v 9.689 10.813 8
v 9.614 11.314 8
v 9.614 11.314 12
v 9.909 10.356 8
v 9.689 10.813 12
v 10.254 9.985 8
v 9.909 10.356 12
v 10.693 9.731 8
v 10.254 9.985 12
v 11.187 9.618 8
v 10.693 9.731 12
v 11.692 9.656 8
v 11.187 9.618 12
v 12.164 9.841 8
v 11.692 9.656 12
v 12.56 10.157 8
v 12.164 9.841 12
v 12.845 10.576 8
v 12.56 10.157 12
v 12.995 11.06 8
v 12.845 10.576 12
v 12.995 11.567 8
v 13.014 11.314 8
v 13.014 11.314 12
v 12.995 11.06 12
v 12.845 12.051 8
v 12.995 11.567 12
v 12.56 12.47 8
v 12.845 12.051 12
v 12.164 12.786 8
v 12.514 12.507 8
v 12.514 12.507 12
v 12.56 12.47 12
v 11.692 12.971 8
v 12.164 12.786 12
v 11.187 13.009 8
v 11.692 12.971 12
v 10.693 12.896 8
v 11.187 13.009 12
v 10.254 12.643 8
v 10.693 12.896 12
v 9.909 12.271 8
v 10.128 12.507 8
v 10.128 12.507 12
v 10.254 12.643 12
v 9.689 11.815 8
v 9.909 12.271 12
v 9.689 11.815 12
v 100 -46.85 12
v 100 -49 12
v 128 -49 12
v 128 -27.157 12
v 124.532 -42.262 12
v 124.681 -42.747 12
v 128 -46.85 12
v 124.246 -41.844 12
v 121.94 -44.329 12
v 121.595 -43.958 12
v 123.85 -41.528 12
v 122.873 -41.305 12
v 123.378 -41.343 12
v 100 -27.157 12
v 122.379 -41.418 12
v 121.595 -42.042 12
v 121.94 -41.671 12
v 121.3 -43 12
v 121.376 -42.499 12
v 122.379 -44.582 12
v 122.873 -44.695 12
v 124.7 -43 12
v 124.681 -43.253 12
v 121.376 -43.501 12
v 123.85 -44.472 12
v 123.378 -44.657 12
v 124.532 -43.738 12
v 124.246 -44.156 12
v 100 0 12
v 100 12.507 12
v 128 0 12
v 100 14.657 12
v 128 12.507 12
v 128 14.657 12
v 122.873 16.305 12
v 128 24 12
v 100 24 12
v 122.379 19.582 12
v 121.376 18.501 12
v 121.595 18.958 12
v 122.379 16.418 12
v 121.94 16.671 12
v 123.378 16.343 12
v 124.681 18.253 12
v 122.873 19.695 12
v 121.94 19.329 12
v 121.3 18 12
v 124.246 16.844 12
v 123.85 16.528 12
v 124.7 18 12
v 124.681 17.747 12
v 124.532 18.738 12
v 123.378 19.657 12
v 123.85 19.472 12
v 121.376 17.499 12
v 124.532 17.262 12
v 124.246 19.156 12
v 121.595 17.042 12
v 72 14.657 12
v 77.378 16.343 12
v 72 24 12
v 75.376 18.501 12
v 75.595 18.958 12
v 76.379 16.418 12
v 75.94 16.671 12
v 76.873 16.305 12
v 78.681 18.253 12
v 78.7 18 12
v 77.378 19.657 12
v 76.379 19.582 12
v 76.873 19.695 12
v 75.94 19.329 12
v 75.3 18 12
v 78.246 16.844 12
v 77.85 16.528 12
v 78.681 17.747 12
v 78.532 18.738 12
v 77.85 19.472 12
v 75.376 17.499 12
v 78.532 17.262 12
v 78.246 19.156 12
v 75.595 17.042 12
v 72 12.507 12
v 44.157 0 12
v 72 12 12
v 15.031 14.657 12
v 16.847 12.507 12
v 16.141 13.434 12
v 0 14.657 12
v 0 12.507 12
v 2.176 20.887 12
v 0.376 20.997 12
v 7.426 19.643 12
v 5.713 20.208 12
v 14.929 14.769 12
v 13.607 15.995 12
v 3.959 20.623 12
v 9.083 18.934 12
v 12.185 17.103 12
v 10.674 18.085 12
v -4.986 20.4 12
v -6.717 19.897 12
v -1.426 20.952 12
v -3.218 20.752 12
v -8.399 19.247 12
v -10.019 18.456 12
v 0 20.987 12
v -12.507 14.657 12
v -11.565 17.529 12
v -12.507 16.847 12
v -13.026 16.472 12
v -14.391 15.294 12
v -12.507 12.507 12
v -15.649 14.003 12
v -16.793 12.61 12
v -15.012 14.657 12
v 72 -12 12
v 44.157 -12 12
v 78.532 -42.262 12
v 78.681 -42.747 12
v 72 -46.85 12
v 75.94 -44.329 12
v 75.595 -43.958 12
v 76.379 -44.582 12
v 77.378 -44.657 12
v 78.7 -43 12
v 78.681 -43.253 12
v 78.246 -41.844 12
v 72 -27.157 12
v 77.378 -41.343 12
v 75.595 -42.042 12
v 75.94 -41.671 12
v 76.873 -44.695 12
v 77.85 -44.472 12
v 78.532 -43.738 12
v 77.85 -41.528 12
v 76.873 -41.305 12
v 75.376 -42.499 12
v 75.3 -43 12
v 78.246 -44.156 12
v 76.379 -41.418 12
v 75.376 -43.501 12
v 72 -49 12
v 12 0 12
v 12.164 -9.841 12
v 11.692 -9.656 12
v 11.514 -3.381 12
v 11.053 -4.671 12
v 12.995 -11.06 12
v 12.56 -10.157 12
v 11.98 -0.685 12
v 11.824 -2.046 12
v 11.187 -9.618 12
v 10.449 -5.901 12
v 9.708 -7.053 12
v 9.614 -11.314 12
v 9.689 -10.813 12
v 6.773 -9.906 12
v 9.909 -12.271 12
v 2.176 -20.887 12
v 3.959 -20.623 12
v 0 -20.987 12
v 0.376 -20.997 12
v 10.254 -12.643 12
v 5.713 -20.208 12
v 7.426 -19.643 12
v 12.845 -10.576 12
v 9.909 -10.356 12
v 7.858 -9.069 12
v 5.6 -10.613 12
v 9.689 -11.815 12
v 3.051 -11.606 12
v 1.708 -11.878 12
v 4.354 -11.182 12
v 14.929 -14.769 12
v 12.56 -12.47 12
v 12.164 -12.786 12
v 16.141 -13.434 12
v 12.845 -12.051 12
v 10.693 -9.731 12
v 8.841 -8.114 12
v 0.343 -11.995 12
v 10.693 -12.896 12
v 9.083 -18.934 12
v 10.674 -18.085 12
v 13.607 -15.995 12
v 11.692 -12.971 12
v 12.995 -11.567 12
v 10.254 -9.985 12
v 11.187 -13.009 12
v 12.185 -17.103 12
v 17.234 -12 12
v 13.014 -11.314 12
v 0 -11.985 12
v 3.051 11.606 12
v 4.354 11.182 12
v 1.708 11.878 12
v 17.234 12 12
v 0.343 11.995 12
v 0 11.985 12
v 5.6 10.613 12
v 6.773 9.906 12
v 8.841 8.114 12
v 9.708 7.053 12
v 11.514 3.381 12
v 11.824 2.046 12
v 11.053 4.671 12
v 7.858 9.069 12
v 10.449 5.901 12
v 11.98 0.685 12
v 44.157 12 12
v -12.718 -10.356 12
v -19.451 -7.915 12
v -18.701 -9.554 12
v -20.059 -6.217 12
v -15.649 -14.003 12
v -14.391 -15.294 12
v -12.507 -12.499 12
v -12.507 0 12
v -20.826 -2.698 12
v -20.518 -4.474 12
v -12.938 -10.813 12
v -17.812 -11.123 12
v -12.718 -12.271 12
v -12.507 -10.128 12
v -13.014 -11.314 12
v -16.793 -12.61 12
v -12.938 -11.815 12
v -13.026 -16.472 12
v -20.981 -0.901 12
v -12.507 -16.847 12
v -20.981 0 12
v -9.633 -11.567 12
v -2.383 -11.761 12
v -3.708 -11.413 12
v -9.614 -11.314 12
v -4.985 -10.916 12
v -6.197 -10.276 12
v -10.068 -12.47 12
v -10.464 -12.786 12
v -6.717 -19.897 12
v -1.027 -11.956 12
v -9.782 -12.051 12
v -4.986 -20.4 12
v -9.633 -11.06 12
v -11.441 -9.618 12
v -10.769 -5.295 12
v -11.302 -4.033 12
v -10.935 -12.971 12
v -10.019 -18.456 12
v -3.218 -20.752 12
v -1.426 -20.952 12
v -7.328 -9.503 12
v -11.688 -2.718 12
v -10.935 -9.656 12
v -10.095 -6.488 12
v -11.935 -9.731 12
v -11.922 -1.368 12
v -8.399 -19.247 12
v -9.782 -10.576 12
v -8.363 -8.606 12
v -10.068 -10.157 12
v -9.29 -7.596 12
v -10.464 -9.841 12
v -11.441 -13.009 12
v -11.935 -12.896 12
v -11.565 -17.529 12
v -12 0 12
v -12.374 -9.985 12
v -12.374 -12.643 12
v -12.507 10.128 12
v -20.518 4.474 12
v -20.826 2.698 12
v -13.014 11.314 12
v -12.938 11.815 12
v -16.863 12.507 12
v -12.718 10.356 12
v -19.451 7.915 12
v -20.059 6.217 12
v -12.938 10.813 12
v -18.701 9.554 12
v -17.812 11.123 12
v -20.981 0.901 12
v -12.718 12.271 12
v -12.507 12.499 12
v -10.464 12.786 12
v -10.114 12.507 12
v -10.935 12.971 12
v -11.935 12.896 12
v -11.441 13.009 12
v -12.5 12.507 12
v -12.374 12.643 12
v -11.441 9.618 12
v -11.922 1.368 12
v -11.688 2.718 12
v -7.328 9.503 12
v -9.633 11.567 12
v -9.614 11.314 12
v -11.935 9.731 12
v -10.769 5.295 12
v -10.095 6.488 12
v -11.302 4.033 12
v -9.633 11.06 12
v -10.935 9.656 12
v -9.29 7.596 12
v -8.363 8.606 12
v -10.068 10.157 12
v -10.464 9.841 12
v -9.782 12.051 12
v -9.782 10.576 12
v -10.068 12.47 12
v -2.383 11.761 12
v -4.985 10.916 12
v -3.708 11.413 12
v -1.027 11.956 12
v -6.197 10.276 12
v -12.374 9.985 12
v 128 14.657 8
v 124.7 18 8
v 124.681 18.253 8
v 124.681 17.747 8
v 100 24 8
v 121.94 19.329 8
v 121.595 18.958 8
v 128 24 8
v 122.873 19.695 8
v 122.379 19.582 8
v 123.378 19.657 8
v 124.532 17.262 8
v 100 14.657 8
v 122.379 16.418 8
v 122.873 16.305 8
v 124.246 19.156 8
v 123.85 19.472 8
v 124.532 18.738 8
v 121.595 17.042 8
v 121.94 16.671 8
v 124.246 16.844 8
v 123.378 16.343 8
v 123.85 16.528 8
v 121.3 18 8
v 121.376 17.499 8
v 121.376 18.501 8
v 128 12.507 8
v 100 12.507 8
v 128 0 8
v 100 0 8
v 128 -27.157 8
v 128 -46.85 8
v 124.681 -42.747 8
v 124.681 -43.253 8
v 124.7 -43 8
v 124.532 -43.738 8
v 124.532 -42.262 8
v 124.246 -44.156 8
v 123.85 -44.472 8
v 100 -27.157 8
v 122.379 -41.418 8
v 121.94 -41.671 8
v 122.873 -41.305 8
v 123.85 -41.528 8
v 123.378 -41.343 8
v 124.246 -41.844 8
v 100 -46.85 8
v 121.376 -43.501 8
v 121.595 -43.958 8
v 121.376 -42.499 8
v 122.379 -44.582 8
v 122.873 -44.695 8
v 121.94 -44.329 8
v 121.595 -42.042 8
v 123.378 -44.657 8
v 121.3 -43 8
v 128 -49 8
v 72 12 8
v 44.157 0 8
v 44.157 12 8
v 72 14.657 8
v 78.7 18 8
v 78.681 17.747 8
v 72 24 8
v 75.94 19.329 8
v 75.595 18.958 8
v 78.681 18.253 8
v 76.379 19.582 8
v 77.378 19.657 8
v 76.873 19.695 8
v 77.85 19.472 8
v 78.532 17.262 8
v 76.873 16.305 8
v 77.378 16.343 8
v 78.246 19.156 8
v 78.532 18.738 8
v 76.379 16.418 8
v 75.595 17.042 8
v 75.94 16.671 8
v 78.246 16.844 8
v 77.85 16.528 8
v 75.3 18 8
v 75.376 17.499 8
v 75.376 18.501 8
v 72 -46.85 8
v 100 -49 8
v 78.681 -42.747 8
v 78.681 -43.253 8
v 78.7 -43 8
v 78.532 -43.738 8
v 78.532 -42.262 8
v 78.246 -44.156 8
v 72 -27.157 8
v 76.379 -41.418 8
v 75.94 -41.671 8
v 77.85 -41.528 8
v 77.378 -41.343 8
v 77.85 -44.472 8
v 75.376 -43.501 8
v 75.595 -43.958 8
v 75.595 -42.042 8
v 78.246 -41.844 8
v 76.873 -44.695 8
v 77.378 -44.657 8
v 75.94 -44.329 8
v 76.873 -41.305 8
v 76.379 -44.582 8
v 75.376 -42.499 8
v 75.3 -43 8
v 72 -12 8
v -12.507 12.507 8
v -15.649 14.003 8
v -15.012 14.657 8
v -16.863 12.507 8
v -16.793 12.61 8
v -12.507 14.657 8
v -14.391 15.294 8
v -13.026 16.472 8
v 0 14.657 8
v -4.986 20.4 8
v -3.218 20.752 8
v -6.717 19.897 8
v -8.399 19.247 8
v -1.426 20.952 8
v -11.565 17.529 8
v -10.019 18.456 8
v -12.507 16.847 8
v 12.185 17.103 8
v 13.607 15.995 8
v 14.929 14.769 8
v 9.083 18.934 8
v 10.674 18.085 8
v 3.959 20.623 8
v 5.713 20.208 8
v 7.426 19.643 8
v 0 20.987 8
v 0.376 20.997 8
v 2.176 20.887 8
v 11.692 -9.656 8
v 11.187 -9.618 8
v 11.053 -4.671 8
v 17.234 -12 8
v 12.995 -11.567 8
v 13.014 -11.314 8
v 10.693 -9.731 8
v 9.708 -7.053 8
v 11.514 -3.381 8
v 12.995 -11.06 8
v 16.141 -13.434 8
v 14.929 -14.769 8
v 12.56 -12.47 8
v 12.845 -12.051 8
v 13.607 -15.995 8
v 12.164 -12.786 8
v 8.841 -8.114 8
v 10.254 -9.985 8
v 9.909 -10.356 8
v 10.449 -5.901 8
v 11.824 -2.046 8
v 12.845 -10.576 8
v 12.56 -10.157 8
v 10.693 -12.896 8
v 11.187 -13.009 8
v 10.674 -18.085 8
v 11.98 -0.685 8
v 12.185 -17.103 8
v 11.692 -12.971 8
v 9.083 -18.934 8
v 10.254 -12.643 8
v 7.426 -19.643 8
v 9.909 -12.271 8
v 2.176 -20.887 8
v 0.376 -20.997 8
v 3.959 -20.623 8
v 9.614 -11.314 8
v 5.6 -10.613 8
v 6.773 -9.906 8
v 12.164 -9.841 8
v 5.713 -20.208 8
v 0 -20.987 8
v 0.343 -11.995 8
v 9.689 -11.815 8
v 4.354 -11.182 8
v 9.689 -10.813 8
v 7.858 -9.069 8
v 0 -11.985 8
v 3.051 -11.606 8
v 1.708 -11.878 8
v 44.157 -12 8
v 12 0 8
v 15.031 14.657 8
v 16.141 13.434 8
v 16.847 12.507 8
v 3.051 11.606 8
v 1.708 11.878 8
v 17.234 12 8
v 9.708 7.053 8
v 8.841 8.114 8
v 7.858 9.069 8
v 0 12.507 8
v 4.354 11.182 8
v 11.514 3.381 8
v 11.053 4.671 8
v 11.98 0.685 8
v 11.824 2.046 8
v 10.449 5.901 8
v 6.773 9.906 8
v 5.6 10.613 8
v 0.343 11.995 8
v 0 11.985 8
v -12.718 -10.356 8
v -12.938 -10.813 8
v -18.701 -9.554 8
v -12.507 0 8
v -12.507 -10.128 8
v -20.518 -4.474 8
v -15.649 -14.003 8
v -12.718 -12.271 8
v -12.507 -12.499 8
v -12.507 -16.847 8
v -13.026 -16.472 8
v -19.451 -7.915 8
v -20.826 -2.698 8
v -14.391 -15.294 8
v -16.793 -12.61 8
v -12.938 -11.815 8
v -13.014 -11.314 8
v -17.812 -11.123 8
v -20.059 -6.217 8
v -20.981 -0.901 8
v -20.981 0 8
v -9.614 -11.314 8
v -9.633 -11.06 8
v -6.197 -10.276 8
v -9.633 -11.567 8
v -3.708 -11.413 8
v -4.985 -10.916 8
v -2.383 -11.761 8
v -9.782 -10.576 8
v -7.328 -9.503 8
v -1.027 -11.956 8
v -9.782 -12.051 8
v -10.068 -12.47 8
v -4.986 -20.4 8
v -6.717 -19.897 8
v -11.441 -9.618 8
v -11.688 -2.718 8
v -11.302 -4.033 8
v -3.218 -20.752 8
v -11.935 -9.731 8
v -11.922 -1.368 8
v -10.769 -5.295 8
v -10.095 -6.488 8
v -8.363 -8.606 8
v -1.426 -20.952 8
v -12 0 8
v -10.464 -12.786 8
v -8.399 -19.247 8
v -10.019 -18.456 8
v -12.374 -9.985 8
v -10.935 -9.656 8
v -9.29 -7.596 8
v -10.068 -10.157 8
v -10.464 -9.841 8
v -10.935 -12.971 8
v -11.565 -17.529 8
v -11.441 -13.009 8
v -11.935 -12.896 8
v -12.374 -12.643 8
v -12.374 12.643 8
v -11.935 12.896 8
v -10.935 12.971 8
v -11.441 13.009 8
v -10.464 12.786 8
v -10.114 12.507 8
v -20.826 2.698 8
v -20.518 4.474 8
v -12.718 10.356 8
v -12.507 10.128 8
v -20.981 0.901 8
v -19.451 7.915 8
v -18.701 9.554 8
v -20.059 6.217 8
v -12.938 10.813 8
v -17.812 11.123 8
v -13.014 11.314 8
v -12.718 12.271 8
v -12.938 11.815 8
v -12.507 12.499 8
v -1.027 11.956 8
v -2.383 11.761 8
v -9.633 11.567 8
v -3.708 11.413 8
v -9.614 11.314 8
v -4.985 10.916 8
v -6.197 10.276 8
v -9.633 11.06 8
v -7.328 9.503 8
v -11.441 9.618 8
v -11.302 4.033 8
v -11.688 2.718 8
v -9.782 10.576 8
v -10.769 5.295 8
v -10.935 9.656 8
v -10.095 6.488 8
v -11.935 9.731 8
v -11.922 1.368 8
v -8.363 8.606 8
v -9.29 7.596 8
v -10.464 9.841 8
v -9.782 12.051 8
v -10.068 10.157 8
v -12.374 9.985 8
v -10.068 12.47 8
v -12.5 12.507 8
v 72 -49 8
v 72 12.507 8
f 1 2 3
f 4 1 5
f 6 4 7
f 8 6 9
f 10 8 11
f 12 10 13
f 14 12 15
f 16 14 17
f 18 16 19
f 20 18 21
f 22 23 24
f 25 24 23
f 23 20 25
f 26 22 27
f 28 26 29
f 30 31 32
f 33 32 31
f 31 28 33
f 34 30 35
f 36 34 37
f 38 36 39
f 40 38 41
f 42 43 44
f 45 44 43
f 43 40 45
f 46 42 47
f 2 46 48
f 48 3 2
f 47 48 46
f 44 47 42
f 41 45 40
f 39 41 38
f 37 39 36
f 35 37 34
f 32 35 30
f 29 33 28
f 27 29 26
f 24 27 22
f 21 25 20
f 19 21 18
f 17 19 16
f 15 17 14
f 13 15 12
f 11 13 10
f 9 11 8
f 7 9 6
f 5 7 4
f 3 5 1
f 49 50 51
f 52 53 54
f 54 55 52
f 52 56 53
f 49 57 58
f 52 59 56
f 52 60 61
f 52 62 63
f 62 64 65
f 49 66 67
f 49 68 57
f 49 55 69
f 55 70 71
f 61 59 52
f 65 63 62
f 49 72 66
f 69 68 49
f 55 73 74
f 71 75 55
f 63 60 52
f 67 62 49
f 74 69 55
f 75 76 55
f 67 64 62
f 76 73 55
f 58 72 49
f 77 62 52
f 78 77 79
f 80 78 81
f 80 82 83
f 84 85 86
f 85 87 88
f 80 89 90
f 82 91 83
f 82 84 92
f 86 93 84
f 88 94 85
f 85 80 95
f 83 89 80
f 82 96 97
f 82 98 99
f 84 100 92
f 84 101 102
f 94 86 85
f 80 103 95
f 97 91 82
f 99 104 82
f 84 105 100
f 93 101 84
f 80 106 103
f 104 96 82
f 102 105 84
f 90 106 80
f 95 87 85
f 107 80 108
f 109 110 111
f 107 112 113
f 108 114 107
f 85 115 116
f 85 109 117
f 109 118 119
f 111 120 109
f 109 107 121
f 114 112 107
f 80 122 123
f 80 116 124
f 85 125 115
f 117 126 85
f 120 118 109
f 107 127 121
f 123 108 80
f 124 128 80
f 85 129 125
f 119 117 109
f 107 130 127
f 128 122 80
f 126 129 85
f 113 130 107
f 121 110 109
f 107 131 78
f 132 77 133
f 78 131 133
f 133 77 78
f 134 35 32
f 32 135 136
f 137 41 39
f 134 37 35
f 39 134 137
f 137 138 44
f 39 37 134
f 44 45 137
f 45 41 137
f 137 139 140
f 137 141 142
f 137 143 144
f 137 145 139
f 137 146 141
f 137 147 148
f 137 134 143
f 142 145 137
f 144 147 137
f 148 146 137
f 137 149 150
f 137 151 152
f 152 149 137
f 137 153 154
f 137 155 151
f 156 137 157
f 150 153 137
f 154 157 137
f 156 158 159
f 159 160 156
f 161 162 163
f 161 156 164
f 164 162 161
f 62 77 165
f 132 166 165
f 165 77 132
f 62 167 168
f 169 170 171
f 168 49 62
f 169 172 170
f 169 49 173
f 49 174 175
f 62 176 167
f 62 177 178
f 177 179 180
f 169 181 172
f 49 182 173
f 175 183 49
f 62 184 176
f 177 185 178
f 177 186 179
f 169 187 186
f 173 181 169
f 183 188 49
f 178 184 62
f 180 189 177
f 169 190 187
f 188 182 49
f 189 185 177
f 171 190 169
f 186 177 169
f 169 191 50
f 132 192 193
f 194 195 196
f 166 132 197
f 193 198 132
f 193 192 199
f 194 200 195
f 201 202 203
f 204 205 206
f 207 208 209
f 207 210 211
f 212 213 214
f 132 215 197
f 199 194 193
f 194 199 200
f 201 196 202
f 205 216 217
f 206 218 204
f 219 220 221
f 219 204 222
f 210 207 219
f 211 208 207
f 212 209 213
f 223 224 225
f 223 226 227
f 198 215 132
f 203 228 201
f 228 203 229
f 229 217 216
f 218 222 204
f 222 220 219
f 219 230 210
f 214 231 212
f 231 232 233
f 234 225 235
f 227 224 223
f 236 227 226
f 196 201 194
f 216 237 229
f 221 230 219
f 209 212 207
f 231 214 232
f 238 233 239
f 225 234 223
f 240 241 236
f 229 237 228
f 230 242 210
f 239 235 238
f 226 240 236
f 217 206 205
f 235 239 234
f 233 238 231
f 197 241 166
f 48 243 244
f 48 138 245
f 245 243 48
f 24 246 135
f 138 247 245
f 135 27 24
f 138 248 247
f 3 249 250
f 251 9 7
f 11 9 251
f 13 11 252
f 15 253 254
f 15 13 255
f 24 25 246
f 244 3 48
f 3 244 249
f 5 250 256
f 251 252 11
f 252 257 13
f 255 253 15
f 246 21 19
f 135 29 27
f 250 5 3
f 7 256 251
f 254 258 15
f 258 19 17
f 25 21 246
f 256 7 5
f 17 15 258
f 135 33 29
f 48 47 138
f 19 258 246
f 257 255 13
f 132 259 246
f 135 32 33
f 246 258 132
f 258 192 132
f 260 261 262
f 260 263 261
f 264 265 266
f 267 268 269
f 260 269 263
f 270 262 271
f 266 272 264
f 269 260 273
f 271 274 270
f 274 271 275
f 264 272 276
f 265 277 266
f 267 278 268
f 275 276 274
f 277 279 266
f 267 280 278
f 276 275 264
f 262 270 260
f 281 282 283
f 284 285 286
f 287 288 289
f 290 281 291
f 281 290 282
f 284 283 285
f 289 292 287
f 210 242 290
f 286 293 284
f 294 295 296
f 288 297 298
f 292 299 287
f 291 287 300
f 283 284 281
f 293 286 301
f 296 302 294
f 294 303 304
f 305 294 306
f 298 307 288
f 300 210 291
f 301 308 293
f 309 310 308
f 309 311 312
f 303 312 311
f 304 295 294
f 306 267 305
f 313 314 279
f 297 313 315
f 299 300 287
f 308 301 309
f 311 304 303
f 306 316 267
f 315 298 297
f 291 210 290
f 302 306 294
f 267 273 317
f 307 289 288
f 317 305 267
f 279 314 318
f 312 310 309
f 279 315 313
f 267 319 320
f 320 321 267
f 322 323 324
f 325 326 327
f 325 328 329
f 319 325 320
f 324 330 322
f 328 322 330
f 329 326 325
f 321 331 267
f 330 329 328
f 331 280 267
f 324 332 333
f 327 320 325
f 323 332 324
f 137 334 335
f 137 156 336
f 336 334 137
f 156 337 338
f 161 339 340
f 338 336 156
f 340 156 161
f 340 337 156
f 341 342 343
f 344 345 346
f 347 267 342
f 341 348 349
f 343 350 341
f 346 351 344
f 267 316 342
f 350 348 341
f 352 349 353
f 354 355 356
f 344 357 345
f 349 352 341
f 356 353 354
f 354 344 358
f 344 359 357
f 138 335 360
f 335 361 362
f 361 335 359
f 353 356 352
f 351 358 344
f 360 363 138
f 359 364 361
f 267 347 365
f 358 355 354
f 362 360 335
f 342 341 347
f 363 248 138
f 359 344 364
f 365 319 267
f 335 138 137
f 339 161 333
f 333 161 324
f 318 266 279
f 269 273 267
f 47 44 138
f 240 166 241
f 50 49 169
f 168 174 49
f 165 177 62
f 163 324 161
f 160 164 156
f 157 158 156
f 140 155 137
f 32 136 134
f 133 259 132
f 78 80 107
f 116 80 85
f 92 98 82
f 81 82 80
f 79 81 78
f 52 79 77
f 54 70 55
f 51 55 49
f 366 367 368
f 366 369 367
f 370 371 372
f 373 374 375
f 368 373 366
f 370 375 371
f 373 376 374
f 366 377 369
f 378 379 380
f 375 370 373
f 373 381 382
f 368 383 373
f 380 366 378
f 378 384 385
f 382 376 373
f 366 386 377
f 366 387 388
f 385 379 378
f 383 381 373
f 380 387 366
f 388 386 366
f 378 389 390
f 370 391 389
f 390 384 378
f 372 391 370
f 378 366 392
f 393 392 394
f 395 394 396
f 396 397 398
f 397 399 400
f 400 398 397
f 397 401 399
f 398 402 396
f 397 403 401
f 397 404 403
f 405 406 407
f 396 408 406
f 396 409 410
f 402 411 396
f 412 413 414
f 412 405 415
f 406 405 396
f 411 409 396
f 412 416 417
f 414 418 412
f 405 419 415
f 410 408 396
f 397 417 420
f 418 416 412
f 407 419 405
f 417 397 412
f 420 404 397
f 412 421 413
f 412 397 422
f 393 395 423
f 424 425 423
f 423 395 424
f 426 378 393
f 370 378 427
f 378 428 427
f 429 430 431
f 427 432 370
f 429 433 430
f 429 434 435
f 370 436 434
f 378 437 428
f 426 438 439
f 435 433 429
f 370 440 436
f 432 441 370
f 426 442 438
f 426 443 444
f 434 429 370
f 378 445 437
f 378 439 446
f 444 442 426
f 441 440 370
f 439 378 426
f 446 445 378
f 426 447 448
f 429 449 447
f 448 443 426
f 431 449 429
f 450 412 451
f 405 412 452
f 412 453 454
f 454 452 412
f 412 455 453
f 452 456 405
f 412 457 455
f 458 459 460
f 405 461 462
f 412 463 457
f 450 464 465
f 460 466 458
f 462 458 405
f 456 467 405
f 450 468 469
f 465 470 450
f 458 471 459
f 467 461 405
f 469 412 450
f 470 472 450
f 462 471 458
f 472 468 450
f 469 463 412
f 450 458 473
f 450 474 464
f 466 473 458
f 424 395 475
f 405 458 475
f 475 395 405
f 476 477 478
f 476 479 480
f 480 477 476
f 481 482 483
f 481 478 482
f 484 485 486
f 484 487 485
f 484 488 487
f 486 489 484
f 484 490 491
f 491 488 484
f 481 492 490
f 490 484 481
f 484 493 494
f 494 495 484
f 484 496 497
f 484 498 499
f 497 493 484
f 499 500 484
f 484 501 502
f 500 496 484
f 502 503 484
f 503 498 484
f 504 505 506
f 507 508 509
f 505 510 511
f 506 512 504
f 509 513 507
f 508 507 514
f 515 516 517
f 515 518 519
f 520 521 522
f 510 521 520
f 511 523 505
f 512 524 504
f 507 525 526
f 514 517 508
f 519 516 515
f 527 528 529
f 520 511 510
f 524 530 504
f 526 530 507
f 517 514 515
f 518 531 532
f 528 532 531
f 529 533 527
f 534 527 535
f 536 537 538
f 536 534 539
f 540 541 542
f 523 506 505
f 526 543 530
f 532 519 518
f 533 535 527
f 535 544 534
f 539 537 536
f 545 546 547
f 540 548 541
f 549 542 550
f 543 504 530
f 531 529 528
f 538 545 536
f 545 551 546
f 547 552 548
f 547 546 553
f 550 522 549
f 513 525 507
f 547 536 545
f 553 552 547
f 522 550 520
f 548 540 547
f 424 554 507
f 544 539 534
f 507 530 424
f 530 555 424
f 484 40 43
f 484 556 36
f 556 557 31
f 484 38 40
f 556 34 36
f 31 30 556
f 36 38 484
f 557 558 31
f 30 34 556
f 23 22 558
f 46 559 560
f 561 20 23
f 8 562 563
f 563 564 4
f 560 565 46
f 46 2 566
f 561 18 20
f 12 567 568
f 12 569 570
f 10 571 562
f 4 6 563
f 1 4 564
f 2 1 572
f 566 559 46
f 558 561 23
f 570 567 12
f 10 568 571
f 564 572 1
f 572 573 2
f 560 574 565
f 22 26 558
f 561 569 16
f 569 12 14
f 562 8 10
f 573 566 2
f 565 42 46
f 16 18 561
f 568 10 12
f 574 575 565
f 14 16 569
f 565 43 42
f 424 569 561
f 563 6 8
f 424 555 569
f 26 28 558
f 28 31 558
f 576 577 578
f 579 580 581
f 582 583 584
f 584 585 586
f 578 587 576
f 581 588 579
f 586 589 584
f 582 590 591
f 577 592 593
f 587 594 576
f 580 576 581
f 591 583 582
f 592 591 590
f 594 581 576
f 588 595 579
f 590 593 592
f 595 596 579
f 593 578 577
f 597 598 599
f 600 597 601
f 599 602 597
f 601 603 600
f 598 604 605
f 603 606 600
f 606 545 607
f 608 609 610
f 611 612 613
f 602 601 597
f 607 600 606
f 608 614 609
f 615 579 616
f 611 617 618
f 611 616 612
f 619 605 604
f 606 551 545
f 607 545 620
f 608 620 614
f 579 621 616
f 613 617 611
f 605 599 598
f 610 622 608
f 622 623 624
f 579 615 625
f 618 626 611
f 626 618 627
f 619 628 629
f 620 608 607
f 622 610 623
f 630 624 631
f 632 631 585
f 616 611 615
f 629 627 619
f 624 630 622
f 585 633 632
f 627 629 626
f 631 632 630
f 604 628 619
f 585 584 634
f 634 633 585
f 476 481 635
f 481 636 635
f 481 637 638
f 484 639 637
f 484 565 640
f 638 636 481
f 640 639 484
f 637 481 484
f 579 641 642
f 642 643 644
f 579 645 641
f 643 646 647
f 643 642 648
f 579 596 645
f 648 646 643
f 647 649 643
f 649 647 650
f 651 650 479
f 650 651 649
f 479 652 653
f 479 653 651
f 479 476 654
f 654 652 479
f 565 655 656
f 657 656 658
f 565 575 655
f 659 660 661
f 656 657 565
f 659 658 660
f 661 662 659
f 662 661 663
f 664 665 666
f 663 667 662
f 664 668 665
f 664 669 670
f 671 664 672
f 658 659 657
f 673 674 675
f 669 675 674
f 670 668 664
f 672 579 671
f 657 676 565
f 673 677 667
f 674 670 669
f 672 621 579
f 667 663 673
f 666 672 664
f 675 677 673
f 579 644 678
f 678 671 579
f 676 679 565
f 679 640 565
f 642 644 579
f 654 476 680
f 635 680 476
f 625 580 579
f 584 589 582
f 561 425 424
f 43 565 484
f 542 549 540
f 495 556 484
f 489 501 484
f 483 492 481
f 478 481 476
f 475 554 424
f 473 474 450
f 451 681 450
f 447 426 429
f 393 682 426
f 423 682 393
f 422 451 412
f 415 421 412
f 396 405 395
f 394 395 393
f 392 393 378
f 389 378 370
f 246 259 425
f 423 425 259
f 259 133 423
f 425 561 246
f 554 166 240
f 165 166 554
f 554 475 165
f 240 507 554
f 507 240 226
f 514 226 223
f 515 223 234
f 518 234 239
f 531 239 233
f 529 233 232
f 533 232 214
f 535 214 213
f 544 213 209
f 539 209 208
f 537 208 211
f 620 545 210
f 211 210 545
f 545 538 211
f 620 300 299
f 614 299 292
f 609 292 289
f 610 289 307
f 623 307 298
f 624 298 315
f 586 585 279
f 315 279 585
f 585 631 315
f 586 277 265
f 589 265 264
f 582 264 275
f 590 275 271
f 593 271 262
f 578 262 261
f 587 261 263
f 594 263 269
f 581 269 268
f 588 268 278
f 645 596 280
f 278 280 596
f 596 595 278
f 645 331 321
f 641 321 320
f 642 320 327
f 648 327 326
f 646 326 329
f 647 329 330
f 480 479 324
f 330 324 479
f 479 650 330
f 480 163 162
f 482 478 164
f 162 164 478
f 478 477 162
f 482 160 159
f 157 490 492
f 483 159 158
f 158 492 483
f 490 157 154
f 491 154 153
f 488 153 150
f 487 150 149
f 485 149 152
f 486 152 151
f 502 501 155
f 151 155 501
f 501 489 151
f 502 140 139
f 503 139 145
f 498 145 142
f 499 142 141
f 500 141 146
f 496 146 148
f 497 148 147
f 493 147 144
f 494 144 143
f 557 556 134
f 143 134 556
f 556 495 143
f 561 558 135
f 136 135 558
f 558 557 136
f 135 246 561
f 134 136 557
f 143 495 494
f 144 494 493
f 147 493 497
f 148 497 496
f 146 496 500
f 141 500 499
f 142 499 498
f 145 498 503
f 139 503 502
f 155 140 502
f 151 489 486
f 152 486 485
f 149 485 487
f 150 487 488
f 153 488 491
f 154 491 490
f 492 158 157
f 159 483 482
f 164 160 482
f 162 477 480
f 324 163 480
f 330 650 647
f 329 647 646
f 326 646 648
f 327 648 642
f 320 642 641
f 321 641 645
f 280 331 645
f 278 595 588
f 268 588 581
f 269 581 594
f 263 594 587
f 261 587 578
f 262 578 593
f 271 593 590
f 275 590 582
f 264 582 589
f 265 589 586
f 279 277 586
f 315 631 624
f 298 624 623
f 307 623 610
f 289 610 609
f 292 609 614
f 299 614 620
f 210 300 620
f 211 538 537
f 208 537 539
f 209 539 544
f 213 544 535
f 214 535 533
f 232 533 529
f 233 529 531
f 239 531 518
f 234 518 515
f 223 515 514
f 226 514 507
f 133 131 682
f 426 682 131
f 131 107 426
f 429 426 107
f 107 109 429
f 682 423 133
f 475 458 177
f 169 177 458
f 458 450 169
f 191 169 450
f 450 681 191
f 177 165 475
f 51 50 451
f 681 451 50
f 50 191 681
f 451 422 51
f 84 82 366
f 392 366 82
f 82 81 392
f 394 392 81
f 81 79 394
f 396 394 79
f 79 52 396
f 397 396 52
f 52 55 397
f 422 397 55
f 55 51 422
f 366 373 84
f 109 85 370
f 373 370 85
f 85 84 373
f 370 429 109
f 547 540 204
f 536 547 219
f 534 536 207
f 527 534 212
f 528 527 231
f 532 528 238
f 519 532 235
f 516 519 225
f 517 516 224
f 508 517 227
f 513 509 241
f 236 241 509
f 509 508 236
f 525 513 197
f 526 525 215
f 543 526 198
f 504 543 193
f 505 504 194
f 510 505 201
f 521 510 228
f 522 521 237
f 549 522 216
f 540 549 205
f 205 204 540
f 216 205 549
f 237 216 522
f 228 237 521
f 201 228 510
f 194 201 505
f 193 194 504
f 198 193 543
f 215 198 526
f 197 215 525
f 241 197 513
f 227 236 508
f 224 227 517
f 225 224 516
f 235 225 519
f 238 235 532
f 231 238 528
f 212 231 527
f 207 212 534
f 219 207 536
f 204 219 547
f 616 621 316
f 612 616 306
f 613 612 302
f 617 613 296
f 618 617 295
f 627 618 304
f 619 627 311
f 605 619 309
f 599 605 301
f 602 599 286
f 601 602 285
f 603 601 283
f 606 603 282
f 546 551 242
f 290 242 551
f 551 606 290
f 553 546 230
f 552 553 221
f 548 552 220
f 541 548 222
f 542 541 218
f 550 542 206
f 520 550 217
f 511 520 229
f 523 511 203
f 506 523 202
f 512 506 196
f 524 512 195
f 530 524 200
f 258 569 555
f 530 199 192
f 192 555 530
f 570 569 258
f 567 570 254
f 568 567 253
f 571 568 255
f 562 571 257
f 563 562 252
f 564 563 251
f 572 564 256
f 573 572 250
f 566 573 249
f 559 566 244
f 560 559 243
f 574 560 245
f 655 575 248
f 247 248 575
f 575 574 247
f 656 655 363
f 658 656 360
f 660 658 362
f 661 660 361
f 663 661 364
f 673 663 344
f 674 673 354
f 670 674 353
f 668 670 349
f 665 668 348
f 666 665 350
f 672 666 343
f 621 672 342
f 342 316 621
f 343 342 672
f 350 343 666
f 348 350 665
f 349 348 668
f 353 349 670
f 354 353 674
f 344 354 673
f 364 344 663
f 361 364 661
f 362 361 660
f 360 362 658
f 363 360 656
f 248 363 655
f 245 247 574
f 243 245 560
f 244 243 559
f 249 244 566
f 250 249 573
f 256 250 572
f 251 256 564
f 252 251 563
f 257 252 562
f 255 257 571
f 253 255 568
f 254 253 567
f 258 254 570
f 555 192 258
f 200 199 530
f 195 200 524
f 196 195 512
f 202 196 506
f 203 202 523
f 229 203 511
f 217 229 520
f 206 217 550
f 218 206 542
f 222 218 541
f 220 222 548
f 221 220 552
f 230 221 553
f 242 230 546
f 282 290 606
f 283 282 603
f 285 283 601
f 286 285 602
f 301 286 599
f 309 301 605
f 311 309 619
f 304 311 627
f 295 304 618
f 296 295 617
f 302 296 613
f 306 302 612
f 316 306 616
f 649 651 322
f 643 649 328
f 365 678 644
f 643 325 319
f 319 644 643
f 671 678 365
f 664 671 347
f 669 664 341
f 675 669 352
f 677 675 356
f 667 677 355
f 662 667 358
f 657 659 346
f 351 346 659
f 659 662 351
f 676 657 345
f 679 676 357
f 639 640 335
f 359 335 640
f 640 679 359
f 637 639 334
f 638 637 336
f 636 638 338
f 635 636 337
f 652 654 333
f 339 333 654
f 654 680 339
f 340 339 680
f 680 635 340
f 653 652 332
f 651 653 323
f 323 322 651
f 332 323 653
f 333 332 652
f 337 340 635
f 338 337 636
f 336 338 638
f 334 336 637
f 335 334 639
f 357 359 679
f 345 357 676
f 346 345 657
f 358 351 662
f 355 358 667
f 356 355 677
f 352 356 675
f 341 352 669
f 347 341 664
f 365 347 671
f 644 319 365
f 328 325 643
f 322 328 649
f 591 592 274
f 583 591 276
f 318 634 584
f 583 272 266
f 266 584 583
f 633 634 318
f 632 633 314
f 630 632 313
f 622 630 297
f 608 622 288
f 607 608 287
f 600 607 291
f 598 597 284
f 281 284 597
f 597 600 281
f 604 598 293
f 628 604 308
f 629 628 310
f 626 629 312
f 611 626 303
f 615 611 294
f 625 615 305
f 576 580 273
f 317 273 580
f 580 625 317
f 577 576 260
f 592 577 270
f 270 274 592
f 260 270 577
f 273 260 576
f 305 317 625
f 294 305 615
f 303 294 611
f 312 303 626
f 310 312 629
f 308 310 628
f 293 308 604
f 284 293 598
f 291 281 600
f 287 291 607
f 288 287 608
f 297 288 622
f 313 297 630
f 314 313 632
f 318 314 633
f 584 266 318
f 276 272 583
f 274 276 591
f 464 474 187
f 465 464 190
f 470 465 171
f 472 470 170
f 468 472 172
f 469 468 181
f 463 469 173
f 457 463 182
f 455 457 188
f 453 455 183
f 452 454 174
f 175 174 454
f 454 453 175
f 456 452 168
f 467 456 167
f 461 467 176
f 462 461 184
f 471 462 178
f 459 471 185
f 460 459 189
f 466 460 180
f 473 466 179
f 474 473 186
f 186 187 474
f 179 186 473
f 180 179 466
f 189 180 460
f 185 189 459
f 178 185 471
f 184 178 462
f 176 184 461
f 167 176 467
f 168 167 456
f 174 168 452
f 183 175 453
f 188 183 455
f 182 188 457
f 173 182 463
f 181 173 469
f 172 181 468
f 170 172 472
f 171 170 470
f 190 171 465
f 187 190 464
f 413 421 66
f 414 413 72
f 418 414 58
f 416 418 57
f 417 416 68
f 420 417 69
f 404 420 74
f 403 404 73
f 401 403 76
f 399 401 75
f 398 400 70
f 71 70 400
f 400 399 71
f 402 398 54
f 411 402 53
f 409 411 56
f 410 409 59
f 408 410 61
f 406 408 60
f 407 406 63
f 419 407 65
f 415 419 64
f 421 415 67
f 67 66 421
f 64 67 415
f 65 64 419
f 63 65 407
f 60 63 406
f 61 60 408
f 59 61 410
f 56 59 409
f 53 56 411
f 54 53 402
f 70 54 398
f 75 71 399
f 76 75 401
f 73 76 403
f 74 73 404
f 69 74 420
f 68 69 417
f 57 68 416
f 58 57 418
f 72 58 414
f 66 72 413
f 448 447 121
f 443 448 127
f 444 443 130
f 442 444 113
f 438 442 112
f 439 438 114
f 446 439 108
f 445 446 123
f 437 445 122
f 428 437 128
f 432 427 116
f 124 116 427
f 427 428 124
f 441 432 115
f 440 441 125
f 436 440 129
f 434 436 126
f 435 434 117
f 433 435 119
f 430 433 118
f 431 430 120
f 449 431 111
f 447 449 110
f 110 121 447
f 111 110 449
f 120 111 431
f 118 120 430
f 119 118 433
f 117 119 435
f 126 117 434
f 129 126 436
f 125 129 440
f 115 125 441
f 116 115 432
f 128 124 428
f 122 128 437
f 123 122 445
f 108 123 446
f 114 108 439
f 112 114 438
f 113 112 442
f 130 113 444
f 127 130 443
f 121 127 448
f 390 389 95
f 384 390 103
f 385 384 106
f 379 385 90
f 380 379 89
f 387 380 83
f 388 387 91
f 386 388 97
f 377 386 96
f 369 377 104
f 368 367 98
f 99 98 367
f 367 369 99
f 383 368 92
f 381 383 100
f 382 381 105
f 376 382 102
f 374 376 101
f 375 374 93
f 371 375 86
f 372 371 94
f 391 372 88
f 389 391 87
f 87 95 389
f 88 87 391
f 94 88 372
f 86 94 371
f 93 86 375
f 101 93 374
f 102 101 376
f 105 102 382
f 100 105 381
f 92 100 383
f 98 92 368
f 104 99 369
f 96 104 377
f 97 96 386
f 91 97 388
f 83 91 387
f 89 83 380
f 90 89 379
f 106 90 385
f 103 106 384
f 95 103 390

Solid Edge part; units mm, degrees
sketch "Sketch1" plane through (0, 0, 8) normal (0, 0, 1) x (1, 0, 0)
  circle A0 centre (0, 0) radius 21
  circle A1 centre (0, 0) radius 12
  circle A2 centre (11.3137, 11.3137) radius 1.7
  circle A3 centre (-11.3137, 11.3137) radius 1.7
  circle A4 centre (-11.3137, -11.3137) radius 1.7
  circle A5 centre (11.3137, -11.3137) radius 1.7
extrude "ExtrudedProtrusion_1" add sketch "Sketch1" along normal blind 4
sketch "Sketch2" plane through (0, 0, 8) normal (0, 0, 1) x (1, 0, 0)
  line L0 (12, -12) -> (88, -12)
  line L1 (88, -12) -> (88, 12)
  line L2 (88, 12) -> (12, 12)
  line L3 (12, 12) -> (12, -12)
extrude "ExtrudedProtrusion_2" add sketch "Sketch2" along normal blind 4
sketch "Sketch3" plane through (0, 0, 8) normal (0, 0, 1) x (1, 0, 0)
  line L0 (72, -49) -> (128, -49)
  line L1 (128, -49) -> (128, 24)
  line L2 (128, 24) -> (72, 24)
  line L3 (72, 24) -> (72, -49)
  circle A0 centre (77, -43) radius 1.7
  circle A1 centre (123, -43) radius 1.7
  circle A2 centre (77, 18) radius 1.7
  circle A3 centre (123, 18) radius 1.7
extrude "ExtrudedProtrusion_3" add sketch "Sketch3" along normal blind 4
sketch "Sketch4" plane through (0, 0, 8) normal (0, 0, 1) x (1, 0, 0)
  circle A0 centre (11.3137, 11.3137) radius 1.7
  circle A1 centre (-11.3137, 11.3137) radius 1.7
  circle A2 centre (-11.3137, -11.3137) radius 1.7
  circle A3 centre (11.3137, -11.3137) radius 1.7
  circle A4 centre (77, -43) radius 1.7
  circle A5 centre (123, -43) radius 1.7
  circle A6 centre (77, 18) radius 1.7
  circle A7 centre (123, 18) radius 1.7
extrude "ExtrudedCutout_1" cut sketch "Sketch4" along normal blind 4
